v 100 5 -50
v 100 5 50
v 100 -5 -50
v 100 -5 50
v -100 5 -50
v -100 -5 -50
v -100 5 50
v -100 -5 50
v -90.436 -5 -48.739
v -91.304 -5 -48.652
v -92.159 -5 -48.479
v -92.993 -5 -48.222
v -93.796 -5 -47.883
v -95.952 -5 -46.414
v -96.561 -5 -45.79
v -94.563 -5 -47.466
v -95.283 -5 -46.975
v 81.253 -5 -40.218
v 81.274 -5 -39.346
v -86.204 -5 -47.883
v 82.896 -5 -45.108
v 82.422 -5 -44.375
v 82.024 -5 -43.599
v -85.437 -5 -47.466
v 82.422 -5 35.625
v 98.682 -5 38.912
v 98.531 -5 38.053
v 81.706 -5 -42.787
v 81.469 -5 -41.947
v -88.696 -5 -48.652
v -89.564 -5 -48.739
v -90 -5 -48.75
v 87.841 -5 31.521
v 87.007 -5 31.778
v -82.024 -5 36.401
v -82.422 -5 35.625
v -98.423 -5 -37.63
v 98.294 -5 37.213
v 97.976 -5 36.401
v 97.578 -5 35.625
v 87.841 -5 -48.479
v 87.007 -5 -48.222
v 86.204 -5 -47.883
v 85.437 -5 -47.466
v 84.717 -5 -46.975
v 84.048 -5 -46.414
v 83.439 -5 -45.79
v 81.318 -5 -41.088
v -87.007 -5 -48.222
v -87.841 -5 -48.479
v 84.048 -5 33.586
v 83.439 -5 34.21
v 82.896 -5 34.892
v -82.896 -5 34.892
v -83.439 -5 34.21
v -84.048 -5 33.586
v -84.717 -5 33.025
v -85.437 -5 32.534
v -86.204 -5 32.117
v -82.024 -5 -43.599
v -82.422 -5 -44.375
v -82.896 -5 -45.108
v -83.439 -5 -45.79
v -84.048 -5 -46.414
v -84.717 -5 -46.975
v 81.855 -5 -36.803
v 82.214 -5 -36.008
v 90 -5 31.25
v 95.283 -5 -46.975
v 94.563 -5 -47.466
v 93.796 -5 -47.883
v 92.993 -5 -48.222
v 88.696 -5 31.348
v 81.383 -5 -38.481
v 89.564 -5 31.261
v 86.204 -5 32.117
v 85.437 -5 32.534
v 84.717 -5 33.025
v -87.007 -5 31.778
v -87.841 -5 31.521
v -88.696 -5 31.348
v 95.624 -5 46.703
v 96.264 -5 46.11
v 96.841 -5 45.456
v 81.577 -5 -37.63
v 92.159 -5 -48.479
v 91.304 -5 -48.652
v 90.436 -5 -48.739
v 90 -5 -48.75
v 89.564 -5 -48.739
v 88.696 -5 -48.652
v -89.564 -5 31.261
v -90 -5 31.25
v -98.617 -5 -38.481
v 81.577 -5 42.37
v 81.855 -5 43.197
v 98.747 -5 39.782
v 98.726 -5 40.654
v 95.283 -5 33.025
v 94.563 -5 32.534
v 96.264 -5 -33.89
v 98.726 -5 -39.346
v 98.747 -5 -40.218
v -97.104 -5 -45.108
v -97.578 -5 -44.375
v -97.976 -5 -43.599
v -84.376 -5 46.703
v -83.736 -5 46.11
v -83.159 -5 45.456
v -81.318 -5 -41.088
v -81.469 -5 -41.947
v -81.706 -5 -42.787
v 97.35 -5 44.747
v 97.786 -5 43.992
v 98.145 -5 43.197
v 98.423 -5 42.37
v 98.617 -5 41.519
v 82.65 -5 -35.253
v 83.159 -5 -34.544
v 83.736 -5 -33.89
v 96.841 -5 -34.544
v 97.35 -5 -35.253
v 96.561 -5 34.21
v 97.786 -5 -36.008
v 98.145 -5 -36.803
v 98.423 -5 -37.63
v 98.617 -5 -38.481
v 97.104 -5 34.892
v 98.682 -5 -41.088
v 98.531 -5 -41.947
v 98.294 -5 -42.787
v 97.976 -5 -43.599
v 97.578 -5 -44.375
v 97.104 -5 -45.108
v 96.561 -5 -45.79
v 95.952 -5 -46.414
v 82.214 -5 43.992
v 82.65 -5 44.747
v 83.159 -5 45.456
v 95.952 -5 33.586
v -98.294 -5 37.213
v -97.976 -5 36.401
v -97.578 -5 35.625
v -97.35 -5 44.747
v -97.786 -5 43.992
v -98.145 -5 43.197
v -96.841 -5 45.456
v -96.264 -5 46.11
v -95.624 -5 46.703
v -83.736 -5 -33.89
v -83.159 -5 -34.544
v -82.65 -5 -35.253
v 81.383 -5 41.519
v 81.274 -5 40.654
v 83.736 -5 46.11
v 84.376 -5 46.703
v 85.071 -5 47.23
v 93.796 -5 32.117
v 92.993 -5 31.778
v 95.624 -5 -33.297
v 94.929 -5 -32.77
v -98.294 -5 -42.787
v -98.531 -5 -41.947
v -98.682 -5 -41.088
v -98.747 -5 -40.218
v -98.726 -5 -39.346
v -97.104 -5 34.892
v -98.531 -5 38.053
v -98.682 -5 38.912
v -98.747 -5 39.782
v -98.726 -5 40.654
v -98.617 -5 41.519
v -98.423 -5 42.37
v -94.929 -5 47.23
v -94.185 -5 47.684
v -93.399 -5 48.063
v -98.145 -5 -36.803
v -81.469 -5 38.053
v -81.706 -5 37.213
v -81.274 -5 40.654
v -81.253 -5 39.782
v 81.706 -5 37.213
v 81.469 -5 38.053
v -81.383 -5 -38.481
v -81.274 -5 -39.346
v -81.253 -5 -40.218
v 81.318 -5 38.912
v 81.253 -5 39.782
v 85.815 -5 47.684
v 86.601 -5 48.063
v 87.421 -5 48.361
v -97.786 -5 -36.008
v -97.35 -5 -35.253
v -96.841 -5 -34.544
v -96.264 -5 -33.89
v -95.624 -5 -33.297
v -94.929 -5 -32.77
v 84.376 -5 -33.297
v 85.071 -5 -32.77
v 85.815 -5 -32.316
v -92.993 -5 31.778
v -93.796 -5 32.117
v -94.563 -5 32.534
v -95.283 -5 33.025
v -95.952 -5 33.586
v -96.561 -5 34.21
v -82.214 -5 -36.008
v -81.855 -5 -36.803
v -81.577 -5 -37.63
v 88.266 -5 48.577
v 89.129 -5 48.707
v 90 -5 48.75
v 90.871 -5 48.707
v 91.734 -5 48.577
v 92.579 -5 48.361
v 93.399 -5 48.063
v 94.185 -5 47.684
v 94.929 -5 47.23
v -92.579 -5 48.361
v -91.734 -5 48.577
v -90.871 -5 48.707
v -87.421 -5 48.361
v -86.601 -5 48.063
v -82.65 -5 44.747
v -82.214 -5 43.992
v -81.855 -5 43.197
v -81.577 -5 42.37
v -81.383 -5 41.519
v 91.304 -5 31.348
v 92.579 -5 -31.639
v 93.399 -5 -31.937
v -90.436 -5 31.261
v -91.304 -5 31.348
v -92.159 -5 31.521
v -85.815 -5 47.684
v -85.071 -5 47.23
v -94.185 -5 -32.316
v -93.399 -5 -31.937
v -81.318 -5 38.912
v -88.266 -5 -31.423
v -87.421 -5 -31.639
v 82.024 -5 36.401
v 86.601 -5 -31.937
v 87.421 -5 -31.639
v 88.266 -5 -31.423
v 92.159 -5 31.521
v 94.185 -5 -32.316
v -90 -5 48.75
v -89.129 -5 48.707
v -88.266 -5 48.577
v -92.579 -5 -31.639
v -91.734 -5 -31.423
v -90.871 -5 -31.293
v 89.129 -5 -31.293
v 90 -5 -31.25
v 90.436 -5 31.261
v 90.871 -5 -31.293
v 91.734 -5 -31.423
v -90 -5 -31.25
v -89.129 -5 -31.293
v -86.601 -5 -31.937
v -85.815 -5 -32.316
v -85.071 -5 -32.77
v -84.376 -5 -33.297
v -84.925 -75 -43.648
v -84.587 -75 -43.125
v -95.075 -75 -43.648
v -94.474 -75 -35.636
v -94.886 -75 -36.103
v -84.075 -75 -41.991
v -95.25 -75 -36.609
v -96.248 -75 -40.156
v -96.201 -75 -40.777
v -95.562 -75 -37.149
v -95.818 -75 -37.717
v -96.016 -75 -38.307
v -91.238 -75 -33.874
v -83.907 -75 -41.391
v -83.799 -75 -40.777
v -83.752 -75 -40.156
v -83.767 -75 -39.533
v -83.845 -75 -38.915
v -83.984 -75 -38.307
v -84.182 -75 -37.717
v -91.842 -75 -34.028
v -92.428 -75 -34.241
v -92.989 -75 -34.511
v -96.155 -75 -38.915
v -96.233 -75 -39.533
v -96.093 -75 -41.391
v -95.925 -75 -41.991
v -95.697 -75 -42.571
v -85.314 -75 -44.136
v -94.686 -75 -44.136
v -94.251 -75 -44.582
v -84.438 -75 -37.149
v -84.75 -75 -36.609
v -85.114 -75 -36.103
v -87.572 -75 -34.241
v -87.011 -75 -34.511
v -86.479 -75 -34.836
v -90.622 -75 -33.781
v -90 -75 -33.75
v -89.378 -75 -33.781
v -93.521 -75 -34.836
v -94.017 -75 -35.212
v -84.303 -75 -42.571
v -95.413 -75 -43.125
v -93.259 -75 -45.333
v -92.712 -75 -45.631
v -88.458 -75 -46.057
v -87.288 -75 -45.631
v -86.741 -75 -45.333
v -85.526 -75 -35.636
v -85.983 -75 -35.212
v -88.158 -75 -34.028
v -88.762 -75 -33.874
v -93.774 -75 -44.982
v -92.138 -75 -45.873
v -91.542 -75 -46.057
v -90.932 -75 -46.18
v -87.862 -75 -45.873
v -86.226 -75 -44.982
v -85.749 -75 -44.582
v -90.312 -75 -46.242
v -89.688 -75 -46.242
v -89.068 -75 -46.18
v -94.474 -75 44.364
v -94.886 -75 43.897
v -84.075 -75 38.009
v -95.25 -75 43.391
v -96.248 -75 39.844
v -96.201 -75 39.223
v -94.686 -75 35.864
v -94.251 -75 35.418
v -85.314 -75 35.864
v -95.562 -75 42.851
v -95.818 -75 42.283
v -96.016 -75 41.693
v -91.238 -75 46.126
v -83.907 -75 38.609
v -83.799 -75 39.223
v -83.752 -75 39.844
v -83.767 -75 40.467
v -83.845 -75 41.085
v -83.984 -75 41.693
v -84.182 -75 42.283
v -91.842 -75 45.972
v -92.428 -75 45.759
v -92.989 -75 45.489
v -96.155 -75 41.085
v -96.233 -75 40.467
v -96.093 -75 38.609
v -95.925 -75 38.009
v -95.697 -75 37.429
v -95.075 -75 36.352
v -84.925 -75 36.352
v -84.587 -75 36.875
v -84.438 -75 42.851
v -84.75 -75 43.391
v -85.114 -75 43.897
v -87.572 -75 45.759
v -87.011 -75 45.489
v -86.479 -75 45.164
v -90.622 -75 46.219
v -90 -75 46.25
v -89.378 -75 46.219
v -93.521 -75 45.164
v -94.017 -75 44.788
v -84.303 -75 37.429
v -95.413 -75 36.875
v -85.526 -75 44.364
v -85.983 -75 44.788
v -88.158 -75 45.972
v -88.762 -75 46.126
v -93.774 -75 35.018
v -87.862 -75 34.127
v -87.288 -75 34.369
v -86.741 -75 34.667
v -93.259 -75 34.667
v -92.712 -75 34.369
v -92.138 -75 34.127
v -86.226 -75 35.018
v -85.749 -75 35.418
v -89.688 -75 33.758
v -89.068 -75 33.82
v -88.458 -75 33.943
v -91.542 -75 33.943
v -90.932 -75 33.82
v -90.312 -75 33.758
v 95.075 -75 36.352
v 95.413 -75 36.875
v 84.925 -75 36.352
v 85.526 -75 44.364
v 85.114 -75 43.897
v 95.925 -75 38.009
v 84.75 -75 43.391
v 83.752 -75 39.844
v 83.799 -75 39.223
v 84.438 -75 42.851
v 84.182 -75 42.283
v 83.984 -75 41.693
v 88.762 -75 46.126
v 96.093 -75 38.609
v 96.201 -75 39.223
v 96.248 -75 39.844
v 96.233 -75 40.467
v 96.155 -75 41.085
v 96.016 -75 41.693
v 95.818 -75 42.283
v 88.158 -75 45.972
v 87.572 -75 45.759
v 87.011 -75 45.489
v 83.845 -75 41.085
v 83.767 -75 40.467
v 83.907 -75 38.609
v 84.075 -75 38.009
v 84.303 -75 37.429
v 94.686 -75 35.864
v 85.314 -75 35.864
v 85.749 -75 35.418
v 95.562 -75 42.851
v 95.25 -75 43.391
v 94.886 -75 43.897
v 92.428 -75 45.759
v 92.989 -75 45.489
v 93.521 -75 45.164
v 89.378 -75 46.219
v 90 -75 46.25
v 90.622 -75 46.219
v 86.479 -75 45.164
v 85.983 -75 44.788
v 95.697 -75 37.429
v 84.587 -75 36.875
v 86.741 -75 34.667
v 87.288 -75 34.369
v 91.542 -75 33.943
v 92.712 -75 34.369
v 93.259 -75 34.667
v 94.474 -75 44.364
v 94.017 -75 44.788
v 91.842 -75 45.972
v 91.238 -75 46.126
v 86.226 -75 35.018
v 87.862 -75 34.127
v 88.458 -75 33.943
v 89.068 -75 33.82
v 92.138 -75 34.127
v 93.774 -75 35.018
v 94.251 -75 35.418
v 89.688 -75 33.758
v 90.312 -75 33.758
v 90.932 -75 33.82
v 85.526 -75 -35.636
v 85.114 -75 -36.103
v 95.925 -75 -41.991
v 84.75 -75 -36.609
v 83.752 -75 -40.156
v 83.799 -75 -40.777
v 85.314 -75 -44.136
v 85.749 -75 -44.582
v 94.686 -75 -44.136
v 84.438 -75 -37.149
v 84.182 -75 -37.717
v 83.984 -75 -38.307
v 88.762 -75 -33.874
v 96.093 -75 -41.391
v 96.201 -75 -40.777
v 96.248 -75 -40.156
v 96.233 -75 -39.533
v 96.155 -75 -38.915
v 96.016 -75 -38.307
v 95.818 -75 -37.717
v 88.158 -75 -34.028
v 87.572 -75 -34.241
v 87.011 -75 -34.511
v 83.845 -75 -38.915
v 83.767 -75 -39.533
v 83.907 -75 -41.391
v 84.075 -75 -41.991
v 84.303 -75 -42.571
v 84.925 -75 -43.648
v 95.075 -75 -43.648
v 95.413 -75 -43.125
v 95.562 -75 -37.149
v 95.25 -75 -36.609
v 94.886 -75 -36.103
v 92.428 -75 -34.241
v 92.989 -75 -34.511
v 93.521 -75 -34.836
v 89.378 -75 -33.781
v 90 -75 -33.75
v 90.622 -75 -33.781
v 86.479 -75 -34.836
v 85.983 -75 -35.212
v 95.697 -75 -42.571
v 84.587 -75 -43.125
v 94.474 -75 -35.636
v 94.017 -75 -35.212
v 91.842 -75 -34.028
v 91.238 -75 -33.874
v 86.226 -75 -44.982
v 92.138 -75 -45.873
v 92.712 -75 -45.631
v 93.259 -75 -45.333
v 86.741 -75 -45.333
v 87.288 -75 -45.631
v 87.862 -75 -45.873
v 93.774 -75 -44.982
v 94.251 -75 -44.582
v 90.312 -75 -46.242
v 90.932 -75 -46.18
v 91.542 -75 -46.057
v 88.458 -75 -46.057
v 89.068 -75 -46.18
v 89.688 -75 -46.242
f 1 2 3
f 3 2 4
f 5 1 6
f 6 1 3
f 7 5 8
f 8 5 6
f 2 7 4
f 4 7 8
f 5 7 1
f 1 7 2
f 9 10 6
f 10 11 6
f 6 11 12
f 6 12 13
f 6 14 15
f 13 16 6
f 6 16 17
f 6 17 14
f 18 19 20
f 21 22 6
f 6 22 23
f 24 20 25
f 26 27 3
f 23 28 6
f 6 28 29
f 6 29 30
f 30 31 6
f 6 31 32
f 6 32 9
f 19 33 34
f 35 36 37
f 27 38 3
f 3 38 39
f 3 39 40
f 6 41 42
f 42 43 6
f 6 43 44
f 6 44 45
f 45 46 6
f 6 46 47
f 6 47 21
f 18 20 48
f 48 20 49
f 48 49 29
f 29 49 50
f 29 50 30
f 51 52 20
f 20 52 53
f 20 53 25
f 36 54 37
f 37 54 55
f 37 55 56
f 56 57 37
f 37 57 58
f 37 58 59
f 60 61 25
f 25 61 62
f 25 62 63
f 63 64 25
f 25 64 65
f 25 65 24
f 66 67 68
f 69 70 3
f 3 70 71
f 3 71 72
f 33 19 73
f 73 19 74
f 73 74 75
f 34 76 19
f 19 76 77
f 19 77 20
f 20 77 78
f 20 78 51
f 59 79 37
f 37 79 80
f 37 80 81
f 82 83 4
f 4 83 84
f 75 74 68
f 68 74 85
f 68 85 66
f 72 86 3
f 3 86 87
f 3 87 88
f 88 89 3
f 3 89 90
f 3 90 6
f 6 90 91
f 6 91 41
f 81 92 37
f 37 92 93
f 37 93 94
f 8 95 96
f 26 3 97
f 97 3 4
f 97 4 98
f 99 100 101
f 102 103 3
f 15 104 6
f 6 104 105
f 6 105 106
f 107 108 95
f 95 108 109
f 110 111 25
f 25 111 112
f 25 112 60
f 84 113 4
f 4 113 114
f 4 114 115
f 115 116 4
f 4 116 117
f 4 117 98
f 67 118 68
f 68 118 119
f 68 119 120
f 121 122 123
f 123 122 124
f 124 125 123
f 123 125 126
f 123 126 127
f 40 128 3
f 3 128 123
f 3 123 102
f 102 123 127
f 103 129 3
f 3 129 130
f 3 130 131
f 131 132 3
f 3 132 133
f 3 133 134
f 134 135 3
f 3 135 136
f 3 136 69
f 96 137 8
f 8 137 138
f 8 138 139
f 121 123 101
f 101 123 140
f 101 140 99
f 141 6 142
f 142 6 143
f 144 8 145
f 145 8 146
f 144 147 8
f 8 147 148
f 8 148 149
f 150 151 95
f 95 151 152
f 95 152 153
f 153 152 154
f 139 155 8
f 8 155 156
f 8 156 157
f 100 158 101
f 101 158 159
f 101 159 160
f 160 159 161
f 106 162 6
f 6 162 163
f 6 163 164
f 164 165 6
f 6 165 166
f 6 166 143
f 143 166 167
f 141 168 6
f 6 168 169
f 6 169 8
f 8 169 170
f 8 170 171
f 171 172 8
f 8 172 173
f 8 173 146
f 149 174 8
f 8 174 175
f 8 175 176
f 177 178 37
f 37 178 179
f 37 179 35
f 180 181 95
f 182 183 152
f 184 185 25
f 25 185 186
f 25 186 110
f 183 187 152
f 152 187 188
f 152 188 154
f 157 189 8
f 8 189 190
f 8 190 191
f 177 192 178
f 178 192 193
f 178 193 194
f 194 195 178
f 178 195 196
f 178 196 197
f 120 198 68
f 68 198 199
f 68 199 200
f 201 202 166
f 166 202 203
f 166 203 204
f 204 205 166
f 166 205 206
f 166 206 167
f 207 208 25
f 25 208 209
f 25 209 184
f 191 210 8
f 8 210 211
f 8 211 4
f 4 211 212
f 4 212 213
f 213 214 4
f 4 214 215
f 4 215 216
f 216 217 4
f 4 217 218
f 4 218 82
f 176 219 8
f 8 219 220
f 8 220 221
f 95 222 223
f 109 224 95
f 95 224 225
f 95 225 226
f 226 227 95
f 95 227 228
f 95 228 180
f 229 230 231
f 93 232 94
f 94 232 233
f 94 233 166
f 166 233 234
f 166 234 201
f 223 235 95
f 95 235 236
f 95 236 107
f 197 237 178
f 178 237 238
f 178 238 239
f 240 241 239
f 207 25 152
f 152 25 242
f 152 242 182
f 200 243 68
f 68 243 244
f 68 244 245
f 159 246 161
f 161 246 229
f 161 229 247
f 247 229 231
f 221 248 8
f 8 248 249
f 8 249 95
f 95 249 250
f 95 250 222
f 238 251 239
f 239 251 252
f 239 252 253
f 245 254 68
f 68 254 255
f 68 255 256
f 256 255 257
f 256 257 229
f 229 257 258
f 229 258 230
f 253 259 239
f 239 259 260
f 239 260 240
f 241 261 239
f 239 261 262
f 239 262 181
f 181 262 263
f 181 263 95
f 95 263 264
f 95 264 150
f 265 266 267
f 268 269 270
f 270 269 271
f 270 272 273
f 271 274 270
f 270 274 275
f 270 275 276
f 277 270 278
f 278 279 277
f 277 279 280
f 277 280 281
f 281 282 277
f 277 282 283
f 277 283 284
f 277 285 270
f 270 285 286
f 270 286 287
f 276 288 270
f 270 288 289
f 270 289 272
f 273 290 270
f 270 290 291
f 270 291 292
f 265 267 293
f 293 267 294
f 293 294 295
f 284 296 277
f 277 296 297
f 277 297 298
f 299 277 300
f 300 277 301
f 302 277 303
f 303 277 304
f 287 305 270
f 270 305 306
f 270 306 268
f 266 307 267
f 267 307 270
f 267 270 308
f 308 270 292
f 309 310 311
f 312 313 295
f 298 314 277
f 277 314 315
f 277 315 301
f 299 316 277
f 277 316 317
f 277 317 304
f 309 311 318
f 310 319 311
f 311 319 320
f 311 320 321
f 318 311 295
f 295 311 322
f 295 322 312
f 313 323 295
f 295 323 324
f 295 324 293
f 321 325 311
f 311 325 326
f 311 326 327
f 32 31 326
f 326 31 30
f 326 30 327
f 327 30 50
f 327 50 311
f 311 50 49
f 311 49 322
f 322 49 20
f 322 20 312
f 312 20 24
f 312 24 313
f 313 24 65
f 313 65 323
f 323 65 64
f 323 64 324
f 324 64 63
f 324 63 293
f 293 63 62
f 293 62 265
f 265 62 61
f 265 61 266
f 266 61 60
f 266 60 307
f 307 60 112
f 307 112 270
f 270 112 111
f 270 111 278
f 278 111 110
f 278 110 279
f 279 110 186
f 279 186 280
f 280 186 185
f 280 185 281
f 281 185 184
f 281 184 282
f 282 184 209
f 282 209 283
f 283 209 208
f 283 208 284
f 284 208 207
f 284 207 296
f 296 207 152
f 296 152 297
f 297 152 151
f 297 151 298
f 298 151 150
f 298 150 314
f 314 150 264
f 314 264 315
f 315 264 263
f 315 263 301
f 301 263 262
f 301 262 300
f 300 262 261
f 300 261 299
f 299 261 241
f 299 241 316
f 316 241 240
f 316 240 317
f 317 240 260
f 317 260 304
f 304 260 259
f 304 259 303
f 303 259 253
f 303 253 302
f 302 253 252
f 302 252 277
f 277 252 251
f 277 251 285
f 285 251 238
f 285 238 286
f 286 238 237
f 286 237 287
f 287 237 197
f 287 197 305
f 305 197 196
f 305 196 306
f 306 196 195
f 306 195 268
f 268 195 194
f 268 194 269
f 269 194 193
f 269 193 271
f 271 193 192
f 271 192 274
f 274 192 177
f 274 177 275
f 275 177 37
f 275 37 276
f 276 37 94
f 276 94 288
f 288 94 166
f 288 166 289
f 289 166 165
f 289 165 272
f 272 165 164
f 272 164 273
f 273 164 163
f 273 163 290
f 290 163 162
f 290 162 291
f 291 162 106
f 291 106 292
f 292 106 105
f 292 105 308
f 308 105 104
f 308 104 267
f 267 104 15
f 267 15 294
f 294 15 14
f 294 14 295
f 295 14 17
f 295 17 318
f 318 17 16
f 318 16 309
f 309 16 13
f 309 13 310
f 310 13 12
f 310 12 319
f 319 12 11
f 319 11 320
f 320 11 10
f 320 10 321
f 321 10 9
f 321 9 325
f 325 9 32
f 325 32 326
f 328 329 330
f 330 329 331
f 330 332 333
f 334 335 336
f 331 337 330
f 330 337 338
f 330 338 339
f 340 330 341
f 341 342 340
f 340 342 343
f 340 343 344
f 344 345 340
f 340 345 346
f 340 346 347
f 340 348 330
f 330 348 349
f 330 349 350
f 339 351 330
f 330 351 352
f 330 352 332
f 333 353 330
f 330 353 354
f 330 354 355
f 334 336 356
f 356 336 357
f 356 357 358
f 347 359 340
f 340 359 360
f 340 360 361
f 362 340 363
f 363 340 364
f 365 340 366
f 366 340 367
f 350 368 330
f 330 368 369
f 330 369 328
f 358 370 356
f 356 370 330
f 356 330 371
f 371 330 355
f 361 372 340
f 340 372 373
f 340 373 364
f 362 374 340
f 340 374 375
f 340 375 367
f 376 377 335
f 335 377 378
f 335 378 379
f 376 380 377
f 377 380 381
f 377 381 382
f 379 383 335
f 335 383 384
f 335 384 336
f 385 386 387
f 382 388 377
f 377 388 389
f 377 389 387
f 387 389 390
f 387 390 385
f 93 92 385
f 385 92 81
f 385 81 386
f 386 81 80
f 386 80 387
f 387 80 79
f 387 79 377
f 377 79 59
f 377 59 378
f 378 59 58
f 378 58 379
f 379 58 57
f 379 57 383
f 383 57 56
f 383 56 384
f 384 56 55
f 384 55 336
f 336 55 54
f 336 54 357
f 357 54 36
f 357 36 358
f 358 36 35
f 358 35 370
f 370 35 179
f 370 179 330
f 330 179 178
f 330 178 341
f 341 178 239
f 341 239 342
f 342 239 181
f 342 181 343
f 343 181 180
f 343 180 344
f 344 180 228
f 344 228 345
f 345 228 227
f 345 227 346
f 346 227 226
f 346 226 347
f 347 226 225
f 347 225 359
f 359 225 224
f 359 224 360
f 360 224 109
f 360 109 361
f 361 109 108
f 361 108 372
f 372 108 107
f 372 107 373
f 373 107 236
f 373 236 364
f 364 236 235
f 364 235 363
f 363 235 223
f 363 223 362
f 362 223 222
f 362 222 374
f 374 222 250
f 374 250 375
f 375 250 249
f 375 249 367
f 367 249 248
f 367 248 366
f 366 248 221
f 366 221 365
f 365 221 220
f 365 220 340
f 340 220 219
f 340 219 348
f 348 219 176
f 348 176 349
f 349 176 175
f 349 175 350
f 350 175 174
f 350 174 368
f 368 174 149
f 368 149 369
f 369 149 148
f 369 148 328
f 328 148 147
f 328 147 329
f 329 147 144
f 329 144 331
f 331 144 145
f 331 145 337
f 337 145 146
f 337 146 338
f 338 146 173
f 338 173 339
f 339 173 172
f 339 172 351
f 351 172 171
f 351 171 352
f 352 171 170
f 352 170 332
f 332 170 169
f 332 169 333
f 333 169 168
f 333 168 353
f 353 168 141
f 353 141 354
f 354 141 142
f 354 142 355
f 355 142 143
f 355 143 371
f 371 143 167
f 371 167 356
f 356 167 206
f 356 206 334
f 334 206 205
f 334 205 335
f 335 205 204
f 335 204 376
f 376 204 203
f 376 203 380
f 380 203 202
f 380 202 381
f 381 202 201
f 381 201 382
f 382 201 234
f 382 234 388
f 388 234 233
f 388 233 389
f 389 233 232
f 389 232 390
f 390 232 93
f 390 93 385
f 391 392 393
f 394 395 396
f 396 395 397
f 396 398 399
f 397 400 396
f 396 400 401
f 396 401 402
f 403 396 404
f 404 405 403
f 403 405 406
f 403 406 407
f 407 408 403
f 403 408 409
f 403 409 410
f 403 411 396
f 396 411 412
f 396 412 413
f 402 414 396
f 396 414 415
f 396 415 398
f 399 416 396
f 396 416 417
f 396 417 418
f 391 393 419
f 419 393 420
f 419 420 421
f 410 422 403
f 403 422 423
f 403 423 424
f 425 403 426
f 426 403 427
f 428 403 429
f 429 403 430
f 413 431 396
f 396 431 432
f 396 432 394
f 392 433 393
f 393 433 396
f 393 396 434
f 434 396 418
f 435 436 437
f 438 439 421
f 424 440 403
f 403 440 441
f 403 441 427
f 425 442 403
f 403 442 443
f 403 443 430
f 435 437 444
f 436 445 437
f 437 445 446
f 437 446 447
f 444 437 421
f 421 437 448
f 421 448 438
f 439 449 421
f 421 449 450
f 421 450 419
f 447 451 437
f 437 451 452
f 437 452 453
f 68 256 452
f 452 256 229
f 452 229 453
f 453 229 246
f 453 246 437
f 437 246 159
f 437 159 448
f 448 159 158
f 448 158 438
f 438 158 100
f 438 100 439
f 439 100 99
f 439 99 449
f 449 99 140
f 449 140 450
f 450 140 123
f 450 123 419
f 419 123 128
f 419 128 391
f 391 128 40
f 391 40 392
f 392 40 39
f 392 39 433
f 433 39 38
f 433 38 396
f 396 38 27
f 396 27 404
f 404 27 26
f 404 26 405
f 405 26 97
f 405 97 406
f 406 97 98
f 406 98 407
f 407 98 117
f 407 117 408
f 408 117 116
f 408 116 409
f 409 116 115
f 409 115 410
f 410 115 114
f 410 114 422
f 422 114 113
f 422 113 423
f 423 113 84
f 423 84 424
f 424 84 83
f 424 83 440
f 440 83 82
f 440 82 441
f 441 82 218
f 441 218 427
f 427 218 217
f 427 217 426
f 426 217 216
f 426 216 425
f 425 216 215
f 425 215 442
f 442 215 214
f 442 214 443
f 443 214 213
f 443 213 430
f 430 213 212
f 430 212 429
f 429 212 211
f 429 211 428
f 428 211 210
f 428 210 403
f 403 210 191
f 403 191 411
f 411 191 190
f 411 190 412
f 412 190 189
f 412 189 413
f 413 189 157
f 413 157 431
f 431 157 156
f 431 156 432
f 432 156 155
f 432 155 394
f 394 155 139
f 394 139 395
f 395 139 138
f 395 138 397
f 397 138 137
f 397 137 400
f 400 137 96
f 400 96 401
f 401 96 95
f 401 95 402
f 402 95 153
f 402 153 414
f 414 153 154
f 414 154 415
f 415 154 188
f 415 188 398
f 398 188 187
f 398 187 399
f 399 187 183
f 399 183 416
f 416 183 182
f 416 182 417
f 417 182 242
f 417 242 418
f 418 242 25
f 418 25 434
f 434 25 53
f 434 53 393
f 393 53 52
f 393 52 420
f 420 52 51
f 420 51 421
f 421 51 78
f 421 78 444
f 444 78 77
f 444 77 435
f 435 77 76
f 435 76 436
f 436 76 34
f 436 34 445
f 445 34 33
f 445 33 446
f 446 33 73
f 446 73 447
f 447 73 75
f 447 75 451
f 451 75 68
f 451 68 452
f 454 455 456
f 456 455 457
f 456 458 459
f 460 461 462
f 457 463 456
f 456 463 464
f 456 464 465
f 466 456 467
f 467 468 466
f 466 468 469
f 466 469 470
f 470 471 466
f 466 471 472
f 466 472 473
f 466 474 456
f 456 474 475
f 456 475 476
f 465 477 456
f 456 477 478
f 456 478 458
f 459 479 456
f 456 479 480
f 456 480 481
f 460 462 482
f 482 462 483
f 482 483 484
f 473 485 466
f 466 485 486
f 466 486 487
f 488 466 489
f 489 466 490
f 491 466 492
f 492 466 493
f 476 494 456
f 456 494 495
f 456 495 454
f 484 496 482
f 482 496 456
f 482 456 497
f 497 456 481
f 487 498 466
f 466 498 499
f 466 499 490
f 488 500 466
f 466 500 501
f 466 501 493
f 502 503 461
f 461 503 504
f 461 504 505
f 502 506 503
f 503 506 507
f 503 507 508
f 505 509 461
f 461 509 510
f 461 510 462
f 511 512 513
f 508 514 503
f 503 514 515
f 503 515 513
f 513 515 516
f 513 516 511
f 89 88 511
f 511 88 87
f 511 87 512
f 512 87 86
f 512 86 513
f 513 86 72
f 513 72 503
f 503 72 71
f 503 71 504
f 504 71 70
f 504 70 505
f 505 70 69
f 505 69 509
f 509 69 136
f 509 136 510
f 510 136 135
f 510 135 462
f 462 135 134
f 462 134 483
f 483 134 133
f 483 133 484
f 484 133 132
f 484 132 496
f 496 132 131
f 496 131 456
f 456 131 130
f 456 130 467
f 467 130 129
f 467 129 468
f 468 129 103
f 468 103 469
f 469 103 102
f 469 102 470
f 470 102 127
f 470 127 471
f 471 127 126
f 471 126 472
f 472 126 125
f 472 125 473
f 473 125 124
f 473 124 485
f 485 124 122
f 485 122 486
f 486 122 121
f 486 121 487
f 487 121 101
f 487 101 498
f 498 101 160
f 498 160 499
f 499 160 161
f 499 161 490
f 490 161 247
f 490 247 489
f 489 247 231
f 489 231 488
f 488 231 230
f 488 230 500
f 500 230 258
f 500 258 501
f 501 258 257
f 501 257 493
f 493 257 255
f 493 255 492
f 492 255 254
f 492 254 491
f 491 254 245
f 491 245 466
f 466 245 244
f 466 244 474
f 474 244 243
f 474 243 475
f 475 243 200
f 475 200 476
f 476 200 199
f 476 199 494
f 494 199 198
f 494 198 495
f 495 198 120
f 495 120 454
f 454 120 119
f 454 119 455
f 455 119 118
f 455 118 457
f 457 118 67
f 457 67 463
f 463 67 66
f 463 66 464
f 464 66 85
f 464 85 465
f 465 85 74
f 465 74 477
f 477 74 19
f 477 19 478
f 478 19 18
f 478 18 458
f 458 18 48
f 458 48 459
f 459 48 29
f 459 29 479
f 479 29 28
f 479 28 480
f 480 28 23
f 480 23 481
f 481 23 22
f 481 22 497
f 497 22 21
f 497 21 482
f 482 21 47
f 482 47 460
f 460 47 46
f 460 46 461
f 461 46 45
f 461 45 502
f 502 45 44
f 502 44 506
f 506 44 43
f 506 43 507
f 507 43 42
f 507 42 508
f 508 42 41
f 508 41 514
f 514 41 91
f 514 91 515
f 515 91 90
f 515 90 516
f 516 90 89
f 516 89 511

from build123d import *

# Parameters (mm, degrees)
SKETCH1_W           = 200
SKETCH1_H           = 100
BOSS_EXTRUDE1_DEPTH = 5
SKETCH2_R           = 8.75
SKETCH3_R           = 6.25
SKETCH2_4_R         = 8.75
SKETCH3_3_R         = 6.25
SKETCH2_5_R         = 8.75
SKETCH3_4_R         = 6.25
SKETCH2_6_R         = 8.75
SKETCH3_5_R         = 6.25


with BuildPart() as part:
    # Sketch1 → Boss-Extrude1 (new, symmetric)
    with BuildSketch(Plane(origin=(0, 0, 0), x_dir=(1, 0, 0), z_dir=(0, 1, 0))):
        Rectangle(SKETCH1_W, SKETCH1_H)
    extrude(amount=BOSS_EXTRUDE1_DEPTH, both=True)

    # Sketch2 → Loft1 section 0
    with BuildSketch(Plane.XZ.offset(5)):
        with Locations((-90, -40)):
            Circle(SKETCH2_R)
    # Sketch3 → Loft1 section 1
    with BuildSketch(Plane(origin=(0, -75, 0), x_dir=(1, 0, 0), z_dir=(0, 1, 0))):
        with Locations((-90, 40)):
            Circle(SKETCH3_R)
    loft()

    # Sketch2<4> → Loft2 section 0
    with BuildSketch(Plane.XZ.offset(5)):
        with Locations((-90, 40)):
            Circle(SKETCH2_4_R)
    # Sketch3<3> → Loft2 section 1
    with BuildSketch(Plane(origin=(0, -75, 0), x_dir=(1, 0, 0), z_dir=(0, 1, 0))):
        with Locations((-90, -40)):
            Circle(SKETCH3_3_R)
    loft()

    # Sketch2<5> → Loft3 section 0
    with BuildSketch(Plane.XZ.offset(5)):
        with Locations((90, 40)):
            Circle(SKETCH2_5_R)
    # Sketch3<4> → Loft3 section 1
    with BuildSketch(Plane(origin=(0, -75, 0), x_dir=(1, 0, 0), z_dir=(0, 1, 0))):
        with Locations((90, -40)):
            Circle(SKETCH3_4_R)
    loft()

    # Sketch2<6> → Loft4 section 0
    with BuildSketch(Plane.XZ.offset(5)):
        with Locations((90, -40)):
            Circle(SKETCH2_6_R)
    # Sketch3<5> → Loft4 section 1
    with BuildSketch(Plane(origin=(0, -75, 0), x_dir=(1, 0, 0), z_dir=(0, 1, 0))):
        with Locations((90, 40)):
            Circle(SKETCH3_5_R)
    loft()


solid = part.part
